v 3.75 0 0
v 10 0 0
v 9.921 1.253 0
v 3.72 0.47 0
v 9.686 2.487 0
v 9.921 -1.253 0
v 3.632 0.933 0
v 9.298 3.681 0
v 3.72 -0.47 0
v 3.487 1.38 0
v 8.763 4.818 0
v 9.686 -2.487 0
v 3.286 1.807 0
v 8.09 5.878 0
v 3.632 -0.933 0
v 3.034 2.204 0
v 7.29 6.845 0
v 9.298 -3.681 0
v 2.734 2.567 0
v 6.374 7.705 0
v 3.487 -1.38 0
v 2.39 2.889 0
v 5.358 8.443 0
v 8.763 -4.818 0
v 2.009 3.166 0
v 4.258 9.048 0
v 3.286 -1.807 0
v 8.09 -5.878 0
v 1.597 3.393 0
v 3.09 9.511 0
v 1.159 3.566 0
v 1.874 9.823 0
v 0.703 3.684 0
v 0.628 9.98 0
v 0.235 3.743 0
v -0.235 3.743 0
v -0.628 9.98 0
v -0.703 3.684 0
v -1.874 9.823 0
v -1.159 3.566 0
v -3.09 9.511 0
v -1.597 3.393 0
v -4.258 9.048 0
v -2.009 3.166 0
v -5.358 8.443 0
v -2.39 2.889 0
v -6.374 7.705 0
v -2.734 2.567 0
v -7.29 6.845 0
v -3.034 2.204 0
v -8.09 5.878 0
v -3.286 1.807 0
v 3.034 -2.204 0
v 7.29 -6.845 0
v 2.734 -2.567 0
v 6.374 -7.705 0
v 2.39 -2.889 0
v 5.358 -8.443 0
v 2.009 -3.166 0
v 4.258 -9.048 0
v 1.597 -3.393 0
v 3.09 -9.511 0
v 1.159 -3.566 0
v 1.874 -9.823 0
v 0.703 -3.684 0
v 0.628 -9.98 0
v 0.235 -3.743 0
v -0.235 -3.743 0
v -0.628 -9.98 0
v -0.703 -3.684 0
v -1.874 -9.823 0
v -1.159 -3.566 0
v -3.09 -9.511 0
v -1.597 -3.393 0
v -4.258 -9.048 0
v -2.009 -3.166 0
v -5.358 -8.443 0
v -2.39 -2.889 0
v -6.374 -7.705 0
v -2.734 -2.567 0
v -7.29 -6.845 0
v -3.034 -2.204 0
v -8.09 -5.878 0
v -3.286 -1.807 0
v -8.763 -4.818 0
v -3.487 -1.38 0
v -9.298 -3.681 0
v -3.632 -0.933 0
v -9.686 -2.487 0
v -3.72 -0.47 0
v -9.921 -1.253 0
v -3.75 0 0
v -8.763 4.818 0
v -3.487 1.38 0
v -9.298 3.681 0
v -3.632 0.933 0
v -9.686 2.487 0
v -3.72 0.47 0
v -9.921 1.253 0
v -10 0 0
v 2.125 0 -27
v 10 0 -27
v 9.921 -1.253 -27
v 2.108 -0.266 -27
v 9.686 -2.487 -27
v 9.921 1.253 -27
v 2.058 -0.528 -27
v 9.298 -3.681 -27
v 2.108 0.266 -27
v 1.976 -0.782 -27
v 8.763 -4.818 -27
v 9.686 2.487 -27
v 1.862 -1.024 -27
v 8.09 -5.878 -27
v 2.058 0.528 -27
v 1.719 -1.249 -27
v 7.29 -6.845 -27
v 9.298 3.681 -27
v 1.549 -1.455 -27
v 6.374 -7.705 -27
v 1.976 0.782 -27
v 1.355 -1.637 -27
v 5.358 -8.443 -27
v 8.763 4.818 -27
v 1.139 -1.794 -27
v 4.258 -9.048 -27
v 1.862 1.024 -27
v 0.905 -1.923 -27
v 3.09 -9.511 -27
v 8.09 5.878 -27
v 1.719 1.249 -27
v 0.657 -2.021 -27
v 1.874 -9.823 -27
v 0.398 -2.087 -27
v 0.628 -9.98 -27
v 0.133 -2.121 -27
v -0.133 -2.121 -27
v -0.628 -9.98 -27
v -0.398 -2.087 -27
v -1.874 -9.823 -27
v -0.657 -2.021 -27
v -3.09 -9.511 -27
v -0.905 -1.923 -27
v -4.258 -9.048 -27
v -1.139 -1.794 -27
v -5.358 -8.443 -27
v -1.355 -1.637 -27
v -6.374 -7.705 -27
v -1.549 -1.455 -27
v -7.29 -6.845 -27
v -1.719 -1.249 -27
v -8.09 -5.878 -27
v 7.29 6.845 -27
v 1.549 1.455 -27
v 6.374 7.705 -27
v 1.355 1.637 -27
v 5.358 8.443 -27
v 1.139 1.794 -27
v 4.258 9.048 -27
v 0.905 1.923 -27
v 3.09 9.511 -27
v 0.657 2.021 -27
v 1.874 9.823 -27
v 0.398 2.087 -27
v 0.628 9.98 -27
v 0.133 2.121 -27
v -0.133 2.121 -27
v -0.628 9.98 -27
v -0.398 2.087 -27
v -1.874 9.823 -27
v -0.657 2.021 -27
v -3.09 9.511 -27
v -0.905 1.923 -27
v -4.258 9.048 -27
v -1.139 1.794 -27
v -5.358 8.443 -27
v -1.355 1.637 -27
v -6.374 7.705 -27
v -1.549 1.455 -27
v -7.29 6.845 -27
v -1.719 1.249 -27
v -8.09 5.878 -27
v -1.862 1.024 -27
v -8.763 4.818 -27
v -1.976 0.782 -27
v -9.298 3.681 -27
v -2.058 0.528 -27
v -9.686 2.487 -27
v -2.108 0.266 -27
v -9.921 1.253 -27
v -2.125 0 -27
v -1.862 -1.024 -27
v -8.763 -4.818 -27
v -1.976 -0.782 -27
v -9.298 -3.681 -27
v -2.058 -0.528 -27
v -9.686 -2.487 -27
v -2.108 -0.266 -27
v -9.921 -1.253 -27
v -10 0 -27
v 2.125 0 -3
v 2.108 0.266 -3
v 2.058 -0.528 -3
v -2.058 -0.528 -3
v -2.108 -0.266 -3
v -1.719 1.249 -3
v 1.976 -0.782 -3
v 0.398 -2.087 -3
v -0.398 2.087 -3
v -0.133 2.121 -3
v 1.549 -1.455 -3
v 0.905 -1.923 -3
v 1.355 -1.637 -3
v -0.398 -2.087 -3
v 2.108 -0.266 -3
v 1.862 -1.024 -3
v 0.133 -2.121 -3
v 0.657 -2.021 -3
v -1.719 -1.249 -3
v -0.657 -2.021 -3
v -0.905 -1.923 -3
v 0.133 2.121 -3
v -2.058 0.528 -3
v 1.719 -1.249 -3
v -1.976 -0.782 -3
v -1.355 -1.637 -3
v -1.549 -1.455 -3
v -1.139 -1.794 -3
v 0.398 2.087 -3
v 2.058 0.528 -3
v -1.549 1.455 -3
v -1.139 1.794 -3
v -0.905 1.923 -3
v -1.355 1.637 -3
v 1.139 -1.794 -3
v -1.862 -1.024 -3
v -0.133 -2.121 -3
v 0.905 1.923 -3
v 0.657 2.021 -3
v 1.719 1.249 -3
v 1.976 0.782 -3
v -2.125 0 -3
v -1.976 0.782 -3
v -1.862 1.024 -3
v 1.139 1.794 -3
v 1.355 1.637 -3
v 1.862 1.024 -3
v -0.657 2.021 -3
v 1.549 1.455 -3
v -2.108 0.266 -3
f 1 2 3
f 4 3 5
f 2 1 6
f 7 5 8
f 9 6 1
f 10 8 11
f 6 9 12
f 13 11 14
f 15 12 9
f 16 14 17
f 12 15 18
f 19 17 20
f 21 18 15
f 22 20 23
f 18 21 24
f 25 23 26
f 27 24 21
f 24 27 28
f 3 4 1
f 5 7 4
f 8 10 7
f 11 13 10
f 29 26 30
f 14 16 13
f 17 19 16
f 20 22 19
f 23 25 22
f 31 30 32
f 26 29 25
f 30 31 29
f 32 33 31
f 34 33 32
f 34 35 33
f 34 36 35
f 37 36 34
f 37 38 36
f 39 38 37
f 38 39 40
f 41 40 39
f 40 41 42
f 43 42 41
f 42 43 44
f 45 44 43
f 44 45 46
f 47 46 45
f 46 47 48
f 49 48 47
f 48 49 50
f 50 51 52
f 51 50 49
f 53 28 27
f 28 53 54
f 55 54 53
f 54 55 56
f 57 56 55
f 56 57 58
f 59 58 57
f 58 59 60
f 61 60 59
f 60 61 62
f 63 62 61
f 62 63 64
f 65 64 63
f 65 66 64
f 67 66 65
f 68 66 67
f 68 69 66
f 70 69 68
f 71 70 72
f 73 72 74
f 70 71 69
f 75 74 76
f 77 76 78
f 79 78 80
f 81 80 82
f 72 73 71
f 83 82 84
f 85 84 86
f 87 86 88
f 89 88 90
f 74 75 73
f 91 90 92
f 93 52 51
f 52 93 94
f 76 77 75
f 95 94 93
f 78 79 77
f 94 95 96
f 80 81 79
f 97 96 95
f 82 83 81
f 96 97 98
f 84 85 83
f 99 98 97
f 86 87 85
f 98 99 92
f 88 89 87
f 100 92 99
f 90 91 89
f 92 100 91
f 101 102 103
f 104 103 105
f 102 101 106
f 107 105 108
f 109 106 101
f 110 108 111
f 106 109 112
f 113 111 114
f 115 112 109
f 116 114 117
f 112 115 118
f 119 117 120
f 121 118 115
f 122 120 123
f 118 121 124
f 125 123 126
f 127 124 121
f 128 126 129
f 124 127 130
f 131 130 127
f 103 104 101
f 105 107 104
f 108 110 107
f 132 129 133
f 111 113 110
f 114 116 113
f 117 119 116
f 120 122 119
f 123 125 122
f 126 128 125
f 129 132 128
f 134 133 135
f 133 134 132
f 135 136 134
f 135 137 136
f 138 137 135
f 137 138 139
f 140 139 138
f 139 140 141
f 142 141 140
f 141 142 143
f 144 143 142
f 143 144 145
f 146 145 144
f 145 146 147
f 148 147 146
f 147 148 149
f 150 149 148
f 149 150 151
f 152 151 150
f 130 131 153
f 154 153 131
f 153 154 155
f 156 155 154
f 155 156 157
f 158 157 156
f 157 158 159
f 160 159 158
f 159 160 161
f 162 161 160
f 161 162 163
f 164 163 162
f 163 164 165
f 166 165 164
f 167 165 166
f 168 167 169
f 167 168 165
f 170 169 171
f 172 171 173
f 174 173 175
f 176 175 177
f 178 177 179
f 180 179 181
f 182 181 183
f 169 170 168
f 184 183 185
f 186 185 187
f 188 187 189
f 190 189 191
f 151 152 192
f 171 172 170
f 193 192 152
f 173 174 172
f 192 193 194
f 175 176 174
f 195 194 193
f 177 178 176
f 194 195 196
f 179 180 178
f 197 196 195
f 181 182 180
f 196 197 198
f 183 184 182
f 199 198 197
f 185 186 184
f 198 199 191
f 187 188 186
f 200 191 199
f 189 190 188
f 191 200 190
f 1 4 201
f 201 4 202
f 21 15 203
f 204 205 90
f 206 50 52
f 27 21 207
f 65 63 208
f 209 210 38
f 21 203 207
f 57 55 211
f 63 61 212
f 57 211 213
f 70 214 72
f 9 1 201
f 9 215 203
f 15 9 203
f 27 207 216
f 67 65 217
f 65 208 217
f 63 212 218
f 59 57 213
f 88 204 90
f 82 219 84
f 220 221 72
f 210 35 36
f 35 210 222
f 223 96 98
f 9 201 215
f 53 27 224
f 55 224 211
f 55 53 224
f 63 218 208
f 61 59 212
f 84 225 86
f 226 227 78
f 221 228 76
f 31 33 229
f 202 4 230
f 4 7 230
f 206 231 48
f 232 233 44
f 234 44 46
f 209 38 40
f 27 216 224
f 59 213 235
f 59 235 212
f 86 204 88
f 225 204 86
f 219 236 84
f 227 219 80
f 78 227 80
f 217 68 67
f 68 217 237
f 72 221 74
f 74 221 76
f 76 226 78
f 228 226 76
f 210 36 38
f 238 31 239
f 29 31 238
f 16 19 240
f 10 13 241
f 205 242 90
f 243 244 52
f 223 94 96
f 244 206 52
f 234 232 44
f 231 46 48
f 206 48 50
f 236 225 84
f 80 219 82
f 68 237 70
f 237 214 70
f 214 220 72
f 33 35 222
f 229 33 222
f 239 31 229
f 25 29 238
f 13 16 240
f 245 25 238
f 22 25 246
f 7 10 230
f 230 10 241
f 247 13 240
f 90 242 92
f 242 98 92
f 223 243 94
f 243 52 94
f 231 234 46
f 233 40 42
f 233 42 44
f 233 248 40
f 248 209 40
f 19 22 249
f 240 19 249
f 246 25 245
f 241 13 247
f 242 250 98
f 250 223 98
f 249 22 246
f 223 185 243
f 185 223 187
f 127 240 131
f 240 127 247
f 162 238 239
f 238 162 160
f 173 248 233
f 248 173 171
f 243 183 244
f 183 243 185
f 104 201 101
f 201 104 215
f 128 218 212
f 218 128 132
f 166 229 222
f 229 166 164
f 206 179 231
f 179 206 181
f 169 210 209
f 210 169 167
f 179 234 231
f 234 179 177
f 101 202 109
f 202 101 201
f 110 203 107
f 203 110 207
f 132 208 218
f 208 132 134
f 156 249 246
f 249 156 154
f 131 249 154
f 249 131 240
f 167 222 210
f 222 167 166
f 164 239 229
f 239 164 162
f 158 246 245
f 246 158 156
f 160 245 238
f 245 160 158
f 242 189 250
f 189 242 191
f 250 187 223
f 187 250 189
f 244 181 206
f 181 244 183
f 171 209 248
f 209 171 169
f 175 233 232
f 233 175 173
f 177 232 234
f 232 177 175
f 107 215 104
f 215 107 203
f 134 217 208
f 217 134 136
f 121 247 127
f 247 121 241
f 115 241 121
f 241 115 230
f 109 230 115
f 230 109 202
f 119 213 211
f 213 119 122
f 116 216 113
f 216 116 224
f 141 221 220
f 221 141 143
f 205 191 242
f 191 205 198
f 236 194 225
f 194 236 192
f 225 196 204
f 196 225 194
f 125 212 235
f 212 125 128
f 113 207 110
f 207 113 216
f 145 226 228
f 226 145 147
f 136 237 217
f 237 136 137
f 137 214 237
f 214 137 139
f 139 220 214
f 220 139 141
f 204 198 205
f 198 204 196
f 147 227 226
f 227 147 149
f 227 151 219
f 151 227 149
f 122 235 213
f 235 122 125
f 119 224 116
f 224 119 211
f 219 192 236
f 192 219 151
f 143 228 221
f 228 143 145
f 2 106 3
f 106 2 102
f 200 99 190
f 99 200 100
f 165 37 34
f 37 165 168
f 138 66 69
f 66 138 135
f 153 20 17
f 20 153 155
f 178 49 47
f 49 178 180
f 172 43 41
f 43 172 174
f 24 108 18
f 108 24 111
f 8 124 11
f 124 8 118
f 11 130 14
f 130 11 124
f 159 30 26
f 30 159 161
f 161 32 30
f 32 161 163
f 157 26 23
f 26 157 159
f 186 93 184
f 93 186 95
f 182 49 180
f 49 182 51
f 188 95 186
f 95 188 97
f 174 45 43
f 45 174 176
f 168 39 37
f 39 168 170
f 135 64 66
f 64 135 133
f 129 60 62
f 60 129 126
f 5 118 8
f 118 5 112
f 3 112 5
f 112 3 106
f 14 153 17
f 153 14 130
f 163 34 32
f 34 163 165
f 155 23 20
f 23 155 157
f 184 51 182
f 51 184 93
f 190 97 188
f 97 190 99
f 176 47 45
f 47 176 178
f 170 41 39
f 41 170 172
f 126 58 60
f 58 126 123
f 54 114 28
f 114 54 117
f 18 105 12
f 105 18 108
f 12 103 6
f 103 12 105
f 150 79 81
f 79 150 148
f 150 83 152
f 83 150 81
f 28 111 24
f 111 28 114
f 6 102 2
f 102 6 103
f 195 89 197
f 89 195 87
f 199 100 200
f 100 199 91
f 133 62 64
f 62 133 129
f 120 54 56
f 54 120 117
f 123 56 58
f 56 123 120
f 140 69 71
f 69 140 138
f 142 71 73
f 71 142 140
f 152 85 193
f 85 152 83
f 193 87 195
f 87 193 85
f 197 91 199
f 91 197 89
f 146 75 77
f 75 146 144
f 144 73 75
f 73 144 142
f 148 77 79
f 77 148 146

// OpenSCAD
$fn = 50;


difference() {
	union() {
		translate(v = [0, 0, -27.0000000000]) {
			cylinder(h = 27, r = 10.0000000000);
		}
		cylinder(h = 0, r = 19.0000000000);
	}
	union() {
		translate(v = [0, 0, 0]) {
			rotate(a = [0, 0, 0]) {
				difference() {
					union() {
						#translate(v = [0, 0, -27.0000000000]) {
							cylinder(h = 27, r = 2.0000000000);
						}
						#translate(v = [0, 0, -3]) {
							cylinder(h = 3, r = 10.0000000000, r1 = 2.1250000000, r2 = 3.7500000000);
						}
						#translate(v = [0, 0, -27.0000000000]) {
							cylinder(h = 27, r = 2.1250000000);
						}
						#translate(v = [0, 0, -27.0000000000]) {
							cylinder(h = 27, r = 2.0000000000);
						}
					}
					union();
				}
			}
		}
	}
}
